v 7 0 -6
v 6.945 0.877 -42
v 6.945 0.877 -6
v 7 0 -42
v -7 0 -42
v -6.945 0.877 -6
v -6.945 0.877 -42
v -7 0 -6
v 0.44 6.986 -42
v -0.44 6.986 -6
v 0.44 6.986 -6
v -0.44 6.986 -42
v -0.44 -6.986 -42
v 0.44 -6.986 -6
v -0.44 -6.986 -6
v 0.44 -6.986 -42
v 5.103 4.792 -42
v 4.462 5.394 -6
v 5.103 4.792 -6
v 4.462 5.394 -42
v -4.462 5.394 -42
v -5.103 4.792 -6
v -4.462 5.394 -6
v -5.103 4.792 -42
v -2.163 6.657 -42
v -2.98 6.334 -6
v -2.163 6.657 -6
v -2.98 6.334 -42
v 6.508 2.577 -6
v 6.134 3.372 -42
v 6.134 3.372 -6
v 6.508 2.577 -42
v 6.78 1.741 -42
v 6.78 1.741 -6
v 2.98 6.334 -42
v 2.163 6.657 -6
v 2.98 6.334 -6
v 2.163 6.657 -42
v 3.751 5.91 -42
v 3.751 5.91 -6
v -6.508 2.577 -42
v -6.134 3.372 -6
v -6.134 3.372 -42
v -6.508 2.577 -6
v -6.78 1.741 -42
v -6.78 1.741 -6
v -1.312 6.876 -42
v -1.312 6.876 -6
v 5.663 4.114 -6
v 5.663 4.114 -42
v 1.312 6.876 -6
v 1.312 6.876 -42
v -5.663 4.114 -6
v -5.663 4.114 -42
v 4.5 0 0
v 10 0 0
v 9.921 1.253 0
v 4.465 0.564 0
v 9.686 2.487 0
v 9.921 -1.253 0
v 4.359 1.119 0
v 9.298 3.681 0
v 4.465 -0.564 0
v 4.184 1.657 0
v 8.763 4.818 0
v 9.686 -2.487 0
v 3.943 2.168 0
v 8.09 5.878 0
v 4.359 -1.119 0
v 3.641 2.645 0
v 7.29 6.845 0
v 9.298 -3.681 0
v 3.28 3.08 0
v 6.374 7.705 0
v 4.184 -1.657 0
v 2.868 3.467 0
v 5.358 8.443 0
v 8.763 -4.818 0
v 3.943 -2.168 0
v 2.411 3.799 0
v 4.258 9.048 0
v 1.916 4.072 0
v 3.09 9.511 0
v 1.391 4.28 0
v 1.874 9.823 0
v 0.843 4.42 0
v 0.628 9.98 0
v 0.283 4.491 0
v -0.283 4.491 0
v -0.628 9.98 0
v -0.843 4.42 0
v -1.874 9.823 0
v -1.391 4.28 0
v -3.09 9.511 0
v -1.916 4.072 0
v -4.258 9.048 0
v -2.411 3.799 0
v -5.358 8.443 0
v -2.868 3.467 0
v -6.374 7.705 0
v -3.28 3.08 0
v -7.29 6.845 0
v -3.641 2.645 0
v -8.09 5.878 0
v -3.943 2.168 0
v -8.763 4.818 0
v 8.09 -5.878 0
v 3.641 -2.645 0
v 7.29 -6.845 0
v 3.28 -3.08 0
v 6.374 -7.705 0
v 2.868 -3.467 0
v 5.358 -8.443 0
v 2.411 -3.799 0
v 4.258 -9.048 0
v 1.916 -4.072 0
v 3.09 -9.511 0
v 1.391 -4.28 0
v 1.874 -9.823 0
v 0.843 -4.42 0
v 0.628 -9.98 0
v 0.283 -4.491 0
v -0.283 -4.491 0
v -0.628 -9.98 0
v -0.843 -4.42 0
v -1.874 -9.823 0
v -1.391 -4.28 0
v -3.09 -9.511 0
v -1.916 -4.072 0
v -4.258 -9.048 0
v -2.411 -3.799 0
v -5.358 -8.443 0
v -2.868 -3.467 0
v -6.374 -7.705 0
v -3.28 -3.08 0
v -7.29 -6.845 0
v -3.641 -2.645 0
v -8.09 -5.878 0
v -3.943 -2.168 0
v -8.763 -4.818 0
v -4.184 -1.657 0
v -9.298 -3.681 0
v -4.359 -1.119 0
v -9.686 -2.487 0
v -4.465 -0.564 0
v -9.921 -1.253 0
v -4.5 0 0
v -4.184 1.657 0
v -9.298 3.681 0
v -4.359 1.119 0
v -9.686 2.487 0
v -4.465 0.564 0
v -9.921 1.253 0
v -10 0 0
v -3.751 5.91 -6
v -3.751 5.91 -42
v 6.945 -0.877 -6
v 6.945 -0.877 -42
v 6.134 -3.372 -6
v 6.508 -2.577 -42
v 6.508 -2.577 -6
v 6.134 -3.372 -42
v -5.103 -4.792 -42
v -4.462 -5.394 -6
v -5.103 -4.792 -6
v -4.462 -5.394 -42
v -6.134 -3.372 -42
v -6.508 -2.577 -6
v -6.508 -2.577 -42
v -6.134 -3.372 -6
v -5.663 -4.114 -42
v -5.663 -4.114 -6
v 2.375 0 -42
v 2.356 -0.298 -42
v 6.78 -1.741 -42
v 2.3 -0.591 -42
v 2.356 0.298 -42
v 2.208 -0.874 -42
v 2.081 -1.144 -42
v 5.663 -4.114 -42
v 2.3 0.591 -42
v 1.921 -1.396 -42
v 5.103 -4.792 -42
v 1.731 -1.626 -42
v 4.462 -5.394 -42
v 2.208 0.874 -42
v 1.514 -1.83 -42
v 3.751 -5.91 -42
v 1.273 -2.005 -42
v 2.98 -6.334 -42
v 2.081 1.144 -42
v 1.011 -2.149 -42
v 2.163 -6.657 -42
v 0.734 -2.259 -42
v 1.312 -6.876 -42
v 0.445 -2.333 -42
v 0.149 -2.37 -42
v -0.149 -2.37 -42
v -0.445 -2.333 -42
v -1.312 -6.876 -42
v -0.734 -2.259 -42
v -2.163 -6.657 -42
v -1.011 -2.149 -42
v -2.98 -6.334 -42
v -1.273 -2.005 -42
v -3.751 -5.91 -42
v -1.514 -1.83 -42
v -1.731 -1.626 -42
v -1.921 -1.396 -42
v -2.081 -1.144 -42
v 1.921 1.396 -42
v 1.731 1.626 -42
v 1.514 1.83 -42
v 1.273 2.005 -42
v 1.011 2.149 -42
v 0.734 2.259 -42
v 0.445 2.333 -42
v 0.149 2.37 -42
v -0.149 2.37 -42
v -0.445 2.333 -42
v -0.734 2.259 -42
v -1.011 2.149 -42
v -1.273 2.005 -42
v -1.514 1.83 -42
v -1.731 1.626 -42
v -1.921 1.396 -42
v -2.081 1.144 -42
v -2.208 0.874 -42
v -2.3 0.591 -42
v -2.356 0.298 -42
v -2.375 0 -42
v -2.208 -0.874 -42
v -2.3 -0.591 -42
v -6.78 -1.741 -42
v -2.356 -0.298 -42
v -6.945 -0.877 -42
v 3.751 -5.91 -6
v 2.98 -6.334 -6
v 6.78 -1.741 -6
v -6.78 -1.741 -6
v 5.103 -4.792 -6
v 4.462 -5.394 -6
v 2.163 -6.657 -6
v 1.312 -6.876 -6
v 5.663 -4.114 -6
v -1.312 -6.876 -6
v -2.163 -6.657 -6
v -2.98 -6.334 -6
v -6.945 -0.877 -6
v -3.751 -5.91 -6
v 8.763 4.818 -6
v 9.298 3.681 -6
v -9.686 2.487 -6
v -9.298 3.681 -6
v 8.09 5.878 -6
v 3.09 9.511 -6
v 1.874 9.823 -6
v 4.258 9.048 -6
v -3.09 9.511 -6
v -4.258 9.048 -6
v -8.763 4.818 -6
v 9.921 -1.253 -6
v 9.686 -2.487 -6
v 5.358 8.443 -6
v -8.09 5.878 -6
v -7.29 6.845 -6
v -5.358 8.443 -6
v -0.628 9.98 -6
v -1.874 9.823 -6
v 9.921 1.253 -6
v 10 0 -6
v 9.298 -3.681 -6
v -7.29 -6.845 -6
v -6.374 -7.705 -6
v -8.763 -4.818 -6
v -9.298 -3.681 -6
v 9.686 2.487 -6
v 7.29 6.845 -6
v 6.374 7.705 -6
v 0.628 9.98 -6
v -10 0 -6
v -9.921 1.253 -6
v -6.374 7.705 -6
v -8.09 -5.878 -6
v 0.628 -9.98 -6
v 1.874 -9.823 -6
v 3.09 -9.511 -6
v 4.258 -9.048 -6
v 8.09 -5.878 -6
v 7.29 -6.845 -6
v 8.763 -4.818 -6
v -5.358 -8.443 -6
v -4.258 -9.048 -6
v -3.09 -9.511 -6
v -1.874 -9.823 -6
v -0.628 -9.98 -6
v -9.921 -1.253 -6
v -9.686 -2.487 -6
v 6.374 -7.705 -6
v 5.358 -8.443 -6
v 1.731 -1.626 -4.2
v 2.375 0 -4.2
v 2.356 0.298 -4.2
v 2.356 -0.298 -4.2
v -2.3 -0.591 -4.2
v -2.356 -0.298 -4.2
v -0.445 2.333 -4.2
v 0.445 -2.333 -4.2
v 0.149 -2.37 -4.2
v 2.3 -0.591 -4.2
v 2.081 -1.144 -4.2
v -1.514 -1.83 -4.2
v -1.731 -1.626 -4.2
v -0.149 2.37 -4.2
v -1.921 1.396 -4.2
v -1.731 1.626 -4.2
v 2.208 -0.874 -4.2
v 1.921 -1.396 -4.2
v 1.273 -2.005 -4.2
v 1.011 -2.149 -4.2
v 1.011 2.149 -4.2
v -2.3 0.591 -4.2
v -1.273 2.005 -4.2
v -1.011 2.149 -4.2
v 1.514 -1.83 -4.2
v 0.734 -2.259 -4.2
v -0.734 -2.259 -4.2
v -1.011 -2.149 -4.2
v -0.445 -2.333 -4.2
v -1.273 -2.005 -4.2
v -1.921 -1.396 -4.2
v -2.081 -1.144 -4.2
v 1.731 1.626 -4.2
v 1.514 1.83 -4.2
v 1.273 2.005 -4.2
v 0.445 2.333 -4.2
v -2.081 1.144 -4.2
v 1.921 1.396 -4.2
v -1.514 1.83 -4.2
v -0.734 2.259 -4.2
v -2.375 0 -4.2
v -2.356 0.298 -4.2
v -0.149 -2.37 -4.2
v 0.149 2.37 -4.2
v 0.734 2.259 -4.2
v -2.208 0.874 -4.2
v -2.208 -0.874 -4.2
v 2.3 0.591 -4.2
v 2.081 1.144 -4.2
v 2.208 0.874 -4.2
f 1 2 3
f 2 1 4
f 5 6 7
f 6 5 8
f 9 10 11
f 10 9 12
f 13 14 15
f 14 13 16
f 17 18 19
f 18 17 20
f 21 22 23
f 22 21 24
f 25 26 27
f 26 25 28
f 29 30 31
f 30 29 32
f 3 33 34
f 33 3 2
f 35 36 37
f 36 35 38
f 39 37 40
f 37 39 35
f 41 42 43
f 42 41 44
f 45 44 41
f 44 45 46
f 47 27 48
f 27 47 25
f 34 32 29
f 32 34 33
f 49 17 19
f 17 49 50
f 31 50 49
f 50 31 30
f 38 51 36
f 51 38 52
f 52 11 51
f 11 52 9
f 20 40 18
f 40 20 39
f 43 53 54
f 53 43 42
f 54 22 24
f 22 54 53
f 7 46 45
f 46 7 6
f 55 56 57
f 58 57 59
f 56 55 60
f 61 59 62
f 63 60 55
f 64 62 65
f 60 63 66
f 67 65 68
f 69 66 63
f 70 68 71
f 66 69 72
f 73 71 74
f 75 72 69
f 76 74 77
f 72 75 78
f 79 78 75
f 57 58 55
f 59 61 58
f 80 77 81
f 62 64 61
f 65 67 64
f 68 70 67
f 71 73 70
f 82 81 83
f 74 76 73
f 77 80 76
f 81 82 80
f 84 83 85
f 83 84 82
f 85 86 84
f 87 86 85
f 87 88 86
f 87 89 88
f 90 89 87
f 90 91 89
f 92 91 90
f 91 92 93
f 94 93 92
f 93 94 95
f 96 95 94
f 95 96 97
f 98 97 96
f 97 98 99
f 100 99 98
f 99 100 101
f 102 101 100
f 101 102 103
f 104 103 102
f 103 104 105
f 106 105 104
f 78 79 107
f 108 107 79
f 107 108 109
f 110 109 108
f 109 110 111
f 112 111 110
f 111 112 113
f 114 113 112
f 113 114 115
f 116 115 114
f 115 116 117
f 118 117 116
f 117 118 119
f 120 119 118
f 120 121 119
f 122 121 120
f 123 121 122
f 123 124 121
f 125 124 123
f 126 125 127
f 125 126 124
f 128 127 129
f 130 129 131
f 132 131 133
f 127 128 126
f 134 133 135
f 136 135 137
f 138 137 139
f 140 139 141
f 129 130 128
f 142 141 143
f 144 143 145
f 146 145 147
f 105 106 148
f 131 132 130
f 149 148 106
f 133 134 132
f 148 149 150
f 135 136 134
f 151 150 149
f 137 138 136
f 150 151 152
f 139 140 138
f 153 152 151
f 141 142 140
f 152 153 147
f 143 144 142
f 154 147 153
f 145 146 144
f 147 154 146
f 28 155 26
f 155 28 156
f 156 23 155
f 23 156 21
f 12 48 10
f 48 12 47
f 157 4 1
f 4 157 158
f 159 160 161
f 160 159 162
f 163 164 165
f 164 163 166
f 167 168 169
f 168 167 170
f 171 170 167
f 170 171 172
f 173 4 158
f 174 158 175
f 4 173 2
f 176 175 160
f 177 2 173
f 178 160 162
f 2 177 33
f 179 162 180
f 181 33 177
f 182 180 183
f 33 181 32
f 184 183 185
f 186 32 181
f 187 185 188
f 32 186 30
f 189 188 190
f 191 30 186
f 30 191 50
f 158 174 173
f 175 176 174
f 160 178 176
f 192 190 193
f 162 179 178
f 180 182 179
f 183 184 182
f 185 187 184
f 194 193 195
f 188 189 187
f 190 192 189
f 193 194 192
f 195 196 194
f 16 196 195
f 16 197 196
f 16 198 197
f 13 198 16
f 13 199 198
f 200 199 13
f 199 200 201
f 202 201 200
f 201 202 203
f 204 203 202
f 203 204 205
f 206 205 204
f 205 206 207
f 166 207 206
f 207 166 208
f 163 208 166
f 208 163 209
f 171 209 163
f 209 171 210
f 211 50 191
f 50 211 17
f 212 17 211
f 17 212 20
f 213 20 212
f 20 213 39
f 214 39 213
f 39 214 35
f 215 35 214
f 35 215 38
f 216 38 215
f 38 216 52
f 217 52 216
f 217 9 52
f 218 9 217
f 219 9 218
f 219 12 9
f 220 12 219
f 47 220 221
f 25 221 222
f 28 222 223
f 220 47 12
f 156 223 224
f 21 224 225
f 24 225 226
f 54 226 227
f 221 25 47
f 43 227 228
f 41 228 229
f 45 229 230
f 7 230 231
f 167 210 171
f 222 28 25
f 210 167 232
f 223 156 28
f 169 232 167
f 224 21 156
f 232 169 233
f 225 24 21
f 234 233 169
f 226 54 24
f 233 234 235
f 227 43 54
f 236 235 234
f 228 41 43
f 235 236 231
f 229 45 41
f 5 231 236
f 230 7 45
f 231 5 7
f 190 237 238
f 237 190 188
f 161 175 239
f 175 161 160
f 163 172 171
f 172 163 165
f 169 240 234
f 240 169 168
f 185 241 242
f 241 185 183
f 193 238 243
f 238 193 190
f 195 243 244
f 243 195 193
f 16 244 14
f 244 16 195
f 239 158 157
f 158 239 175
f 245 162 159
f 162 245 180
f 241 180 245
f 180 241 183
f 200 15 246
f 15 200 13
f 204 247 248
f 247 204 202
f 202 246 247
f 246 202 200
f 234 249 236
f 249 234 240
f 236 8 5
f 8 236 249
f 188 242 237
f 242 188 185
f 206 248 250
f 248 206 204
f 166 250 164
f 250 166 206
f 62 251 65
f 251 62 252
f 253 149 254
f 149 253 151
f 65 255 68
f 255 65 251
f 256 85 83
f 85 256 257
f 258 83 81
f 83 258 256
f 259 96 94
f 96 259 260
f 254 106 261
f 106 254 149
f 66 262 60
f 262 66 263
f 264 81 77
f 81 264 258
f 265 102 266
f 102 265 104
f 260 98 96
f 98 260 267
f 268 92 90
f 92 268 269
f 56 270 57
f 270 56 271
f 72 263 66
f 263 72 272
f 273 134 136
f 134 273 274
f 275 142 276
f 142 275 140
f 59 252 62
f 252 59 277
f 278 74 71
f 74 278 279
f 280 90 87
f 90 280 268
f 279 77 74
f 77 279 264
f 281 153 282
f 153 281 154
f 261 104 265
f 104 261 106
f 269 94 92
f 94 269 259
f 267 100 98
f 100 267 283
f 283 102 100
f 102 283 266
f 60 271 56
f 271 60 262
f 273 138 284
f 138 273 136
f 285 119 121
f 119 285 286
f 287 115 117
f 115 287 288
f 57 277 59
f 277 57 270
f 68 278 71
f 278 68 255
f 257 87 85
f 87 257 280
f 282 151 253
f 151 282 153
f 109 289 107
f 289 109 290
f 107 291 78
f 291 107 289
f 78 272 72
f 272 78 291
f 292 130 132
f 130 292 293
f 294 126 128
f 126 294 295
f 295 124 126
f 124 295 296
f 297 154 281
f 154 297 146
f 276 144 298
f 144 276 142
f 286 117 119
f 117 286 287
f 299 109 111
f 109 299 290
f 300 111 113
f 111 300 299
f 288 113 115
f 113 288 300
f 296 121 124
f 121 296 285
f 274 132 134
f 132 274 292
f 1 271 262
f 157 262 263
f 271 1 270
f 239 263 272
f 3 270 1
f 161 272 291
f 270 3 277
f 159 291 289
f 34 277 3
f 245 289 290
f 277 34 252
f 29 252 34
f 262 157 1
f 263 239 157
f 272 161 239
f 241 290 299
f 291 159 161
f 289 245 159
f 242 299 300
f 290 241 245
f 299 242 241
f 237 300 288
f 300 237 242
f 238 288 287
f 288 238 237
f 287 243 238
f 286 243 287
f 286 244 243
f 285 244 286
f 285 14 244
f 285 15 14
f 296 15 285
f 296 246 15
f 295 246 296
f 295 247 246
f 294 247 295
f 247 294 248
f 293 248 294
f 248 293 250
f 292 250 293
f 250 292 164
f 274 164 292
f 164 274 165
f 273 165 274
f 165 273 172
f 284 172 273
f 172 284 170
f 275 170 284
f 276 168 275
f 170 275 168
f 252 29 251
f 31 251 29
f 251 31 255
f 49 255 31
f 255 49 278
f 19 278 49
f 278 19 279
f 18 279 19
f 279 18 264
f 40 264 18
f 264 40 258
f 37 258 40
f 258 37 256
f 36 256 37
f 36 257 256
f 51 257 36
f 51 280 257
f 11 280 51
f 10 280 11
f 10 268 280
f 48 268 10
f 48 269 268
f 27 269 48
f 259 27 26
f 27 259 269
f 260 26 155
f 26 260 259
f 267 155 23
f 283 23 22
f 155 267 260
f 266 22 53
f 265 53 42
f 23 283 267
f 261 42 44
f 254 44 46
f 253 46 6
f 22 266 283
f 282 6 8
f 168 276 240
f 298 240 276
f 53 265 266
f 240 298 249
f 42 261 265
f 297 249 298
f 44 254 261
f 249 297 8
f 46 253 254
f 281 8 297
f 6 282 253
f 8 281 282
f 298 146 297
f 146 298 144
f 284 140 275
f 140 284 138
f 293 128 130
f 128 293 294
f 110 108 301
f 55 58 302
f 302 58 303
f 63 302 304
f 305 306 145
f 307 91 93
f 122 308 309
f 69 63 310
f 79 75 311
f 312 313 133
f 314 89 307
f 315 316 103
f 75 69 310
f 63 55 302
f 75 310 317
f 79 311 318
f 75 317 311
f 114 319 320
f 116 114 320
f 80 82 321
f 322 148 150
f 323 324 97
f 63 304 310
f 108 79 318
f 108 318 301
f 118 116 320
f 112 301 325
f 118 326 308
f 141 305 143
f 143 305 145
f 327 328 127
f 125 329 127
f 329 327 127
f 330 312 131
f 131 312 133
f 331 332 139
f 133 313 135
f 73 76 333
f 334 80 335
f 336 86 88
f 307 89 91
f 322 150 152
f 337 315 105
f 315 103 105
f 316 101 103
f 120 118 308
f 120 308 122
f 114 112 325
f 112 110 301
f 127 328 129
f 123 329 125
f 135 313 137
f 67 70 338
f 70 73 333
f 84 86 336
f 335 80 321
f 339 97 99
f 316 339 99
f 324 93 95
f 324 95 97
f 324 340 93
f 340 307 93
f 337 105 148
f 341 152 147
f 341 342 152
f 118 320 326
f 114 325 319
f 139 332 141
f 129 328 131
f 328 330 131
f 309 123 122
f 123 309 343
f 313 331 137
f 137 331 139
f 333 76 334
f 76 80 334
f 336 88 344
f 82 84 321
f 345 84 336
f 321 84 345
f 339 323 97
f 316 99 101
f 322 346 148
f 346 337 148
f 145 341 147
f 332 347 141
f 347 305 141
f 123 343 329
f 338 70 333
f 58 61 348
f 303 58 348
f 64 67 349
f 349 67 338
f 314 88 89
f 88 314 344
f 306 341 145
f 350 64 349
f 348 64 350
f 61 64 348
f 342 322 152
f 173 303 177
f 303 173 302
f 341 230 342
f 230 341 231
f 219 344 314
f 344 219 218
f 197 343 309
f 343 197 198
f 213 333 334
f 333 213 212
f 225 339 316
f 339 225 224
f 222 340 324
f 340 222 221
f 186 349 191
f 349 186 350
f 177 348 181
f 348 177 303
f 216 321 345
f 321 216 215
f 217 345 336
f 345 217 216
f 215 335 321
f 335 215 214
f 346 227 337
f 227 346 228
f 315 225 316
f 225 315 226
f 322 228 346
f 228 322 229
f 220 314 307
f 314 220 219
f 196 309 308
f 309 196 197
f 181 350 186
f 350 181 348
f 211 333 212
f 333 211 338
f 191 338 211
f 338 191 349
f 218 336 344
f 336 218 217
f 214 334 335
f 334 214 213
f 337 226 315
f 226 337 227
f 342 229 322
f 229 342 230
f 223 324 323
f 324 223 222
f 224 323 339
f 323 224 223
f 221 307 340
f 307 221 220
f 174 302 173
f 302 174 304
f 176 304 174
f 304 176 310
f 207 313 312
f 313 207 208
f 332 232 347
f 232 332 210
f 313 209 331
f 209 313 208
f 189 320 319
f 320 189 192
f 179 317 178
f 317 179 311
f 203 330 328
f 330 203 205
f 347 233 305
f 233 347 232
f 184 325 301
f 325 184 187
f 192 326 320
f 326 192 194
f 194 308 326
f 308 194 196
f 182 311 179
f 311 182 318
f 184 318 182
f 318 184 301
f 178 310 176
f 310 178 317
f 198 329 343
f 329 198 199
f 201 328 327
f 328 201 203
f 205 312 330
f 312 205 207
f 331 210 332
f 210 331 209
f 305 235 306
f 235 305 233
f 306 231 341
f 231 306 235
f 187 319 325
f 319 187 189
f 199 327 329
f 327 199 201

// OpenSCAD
$fn = 50;


difference() {
	union() {
		translate(v = [0, 0, -42.0000000000]) {
			cylinder(h = 42, r = 7.0000000000);
		}
		translate(v = [0, 0, -6.0000000000]) {
			cylinder(h = 6, r = 10.0000000000);
		}
	}
	union() {
		translate(v = [0, 0, 0]) {
			rotate(a = [0, 0, 0]) {
				difference() {
					union() {
						#translate(v = [0, 0, -42.0000000000]) {
							cylinder(h = 42, r = 2.2500000000);
						}
						#translate(v = [0, 0, -4.2000000000]) {
							cylinder(h = 4.2000000000, r = 7.0000000000, r1 = 2.3750000000, r2 = 4.5000000000);
						}
						#translate(v = [0, 0, -42.0000000000]) {
							cylinder(h = 42, r = 2.3750000000);
						}
						#translate(v = [0, 0, -42.0000000000]) {
							cylinder(h = 42, r = 2.2500000000);
						}
					}
					union();
				}
			}
		}
	}
}
